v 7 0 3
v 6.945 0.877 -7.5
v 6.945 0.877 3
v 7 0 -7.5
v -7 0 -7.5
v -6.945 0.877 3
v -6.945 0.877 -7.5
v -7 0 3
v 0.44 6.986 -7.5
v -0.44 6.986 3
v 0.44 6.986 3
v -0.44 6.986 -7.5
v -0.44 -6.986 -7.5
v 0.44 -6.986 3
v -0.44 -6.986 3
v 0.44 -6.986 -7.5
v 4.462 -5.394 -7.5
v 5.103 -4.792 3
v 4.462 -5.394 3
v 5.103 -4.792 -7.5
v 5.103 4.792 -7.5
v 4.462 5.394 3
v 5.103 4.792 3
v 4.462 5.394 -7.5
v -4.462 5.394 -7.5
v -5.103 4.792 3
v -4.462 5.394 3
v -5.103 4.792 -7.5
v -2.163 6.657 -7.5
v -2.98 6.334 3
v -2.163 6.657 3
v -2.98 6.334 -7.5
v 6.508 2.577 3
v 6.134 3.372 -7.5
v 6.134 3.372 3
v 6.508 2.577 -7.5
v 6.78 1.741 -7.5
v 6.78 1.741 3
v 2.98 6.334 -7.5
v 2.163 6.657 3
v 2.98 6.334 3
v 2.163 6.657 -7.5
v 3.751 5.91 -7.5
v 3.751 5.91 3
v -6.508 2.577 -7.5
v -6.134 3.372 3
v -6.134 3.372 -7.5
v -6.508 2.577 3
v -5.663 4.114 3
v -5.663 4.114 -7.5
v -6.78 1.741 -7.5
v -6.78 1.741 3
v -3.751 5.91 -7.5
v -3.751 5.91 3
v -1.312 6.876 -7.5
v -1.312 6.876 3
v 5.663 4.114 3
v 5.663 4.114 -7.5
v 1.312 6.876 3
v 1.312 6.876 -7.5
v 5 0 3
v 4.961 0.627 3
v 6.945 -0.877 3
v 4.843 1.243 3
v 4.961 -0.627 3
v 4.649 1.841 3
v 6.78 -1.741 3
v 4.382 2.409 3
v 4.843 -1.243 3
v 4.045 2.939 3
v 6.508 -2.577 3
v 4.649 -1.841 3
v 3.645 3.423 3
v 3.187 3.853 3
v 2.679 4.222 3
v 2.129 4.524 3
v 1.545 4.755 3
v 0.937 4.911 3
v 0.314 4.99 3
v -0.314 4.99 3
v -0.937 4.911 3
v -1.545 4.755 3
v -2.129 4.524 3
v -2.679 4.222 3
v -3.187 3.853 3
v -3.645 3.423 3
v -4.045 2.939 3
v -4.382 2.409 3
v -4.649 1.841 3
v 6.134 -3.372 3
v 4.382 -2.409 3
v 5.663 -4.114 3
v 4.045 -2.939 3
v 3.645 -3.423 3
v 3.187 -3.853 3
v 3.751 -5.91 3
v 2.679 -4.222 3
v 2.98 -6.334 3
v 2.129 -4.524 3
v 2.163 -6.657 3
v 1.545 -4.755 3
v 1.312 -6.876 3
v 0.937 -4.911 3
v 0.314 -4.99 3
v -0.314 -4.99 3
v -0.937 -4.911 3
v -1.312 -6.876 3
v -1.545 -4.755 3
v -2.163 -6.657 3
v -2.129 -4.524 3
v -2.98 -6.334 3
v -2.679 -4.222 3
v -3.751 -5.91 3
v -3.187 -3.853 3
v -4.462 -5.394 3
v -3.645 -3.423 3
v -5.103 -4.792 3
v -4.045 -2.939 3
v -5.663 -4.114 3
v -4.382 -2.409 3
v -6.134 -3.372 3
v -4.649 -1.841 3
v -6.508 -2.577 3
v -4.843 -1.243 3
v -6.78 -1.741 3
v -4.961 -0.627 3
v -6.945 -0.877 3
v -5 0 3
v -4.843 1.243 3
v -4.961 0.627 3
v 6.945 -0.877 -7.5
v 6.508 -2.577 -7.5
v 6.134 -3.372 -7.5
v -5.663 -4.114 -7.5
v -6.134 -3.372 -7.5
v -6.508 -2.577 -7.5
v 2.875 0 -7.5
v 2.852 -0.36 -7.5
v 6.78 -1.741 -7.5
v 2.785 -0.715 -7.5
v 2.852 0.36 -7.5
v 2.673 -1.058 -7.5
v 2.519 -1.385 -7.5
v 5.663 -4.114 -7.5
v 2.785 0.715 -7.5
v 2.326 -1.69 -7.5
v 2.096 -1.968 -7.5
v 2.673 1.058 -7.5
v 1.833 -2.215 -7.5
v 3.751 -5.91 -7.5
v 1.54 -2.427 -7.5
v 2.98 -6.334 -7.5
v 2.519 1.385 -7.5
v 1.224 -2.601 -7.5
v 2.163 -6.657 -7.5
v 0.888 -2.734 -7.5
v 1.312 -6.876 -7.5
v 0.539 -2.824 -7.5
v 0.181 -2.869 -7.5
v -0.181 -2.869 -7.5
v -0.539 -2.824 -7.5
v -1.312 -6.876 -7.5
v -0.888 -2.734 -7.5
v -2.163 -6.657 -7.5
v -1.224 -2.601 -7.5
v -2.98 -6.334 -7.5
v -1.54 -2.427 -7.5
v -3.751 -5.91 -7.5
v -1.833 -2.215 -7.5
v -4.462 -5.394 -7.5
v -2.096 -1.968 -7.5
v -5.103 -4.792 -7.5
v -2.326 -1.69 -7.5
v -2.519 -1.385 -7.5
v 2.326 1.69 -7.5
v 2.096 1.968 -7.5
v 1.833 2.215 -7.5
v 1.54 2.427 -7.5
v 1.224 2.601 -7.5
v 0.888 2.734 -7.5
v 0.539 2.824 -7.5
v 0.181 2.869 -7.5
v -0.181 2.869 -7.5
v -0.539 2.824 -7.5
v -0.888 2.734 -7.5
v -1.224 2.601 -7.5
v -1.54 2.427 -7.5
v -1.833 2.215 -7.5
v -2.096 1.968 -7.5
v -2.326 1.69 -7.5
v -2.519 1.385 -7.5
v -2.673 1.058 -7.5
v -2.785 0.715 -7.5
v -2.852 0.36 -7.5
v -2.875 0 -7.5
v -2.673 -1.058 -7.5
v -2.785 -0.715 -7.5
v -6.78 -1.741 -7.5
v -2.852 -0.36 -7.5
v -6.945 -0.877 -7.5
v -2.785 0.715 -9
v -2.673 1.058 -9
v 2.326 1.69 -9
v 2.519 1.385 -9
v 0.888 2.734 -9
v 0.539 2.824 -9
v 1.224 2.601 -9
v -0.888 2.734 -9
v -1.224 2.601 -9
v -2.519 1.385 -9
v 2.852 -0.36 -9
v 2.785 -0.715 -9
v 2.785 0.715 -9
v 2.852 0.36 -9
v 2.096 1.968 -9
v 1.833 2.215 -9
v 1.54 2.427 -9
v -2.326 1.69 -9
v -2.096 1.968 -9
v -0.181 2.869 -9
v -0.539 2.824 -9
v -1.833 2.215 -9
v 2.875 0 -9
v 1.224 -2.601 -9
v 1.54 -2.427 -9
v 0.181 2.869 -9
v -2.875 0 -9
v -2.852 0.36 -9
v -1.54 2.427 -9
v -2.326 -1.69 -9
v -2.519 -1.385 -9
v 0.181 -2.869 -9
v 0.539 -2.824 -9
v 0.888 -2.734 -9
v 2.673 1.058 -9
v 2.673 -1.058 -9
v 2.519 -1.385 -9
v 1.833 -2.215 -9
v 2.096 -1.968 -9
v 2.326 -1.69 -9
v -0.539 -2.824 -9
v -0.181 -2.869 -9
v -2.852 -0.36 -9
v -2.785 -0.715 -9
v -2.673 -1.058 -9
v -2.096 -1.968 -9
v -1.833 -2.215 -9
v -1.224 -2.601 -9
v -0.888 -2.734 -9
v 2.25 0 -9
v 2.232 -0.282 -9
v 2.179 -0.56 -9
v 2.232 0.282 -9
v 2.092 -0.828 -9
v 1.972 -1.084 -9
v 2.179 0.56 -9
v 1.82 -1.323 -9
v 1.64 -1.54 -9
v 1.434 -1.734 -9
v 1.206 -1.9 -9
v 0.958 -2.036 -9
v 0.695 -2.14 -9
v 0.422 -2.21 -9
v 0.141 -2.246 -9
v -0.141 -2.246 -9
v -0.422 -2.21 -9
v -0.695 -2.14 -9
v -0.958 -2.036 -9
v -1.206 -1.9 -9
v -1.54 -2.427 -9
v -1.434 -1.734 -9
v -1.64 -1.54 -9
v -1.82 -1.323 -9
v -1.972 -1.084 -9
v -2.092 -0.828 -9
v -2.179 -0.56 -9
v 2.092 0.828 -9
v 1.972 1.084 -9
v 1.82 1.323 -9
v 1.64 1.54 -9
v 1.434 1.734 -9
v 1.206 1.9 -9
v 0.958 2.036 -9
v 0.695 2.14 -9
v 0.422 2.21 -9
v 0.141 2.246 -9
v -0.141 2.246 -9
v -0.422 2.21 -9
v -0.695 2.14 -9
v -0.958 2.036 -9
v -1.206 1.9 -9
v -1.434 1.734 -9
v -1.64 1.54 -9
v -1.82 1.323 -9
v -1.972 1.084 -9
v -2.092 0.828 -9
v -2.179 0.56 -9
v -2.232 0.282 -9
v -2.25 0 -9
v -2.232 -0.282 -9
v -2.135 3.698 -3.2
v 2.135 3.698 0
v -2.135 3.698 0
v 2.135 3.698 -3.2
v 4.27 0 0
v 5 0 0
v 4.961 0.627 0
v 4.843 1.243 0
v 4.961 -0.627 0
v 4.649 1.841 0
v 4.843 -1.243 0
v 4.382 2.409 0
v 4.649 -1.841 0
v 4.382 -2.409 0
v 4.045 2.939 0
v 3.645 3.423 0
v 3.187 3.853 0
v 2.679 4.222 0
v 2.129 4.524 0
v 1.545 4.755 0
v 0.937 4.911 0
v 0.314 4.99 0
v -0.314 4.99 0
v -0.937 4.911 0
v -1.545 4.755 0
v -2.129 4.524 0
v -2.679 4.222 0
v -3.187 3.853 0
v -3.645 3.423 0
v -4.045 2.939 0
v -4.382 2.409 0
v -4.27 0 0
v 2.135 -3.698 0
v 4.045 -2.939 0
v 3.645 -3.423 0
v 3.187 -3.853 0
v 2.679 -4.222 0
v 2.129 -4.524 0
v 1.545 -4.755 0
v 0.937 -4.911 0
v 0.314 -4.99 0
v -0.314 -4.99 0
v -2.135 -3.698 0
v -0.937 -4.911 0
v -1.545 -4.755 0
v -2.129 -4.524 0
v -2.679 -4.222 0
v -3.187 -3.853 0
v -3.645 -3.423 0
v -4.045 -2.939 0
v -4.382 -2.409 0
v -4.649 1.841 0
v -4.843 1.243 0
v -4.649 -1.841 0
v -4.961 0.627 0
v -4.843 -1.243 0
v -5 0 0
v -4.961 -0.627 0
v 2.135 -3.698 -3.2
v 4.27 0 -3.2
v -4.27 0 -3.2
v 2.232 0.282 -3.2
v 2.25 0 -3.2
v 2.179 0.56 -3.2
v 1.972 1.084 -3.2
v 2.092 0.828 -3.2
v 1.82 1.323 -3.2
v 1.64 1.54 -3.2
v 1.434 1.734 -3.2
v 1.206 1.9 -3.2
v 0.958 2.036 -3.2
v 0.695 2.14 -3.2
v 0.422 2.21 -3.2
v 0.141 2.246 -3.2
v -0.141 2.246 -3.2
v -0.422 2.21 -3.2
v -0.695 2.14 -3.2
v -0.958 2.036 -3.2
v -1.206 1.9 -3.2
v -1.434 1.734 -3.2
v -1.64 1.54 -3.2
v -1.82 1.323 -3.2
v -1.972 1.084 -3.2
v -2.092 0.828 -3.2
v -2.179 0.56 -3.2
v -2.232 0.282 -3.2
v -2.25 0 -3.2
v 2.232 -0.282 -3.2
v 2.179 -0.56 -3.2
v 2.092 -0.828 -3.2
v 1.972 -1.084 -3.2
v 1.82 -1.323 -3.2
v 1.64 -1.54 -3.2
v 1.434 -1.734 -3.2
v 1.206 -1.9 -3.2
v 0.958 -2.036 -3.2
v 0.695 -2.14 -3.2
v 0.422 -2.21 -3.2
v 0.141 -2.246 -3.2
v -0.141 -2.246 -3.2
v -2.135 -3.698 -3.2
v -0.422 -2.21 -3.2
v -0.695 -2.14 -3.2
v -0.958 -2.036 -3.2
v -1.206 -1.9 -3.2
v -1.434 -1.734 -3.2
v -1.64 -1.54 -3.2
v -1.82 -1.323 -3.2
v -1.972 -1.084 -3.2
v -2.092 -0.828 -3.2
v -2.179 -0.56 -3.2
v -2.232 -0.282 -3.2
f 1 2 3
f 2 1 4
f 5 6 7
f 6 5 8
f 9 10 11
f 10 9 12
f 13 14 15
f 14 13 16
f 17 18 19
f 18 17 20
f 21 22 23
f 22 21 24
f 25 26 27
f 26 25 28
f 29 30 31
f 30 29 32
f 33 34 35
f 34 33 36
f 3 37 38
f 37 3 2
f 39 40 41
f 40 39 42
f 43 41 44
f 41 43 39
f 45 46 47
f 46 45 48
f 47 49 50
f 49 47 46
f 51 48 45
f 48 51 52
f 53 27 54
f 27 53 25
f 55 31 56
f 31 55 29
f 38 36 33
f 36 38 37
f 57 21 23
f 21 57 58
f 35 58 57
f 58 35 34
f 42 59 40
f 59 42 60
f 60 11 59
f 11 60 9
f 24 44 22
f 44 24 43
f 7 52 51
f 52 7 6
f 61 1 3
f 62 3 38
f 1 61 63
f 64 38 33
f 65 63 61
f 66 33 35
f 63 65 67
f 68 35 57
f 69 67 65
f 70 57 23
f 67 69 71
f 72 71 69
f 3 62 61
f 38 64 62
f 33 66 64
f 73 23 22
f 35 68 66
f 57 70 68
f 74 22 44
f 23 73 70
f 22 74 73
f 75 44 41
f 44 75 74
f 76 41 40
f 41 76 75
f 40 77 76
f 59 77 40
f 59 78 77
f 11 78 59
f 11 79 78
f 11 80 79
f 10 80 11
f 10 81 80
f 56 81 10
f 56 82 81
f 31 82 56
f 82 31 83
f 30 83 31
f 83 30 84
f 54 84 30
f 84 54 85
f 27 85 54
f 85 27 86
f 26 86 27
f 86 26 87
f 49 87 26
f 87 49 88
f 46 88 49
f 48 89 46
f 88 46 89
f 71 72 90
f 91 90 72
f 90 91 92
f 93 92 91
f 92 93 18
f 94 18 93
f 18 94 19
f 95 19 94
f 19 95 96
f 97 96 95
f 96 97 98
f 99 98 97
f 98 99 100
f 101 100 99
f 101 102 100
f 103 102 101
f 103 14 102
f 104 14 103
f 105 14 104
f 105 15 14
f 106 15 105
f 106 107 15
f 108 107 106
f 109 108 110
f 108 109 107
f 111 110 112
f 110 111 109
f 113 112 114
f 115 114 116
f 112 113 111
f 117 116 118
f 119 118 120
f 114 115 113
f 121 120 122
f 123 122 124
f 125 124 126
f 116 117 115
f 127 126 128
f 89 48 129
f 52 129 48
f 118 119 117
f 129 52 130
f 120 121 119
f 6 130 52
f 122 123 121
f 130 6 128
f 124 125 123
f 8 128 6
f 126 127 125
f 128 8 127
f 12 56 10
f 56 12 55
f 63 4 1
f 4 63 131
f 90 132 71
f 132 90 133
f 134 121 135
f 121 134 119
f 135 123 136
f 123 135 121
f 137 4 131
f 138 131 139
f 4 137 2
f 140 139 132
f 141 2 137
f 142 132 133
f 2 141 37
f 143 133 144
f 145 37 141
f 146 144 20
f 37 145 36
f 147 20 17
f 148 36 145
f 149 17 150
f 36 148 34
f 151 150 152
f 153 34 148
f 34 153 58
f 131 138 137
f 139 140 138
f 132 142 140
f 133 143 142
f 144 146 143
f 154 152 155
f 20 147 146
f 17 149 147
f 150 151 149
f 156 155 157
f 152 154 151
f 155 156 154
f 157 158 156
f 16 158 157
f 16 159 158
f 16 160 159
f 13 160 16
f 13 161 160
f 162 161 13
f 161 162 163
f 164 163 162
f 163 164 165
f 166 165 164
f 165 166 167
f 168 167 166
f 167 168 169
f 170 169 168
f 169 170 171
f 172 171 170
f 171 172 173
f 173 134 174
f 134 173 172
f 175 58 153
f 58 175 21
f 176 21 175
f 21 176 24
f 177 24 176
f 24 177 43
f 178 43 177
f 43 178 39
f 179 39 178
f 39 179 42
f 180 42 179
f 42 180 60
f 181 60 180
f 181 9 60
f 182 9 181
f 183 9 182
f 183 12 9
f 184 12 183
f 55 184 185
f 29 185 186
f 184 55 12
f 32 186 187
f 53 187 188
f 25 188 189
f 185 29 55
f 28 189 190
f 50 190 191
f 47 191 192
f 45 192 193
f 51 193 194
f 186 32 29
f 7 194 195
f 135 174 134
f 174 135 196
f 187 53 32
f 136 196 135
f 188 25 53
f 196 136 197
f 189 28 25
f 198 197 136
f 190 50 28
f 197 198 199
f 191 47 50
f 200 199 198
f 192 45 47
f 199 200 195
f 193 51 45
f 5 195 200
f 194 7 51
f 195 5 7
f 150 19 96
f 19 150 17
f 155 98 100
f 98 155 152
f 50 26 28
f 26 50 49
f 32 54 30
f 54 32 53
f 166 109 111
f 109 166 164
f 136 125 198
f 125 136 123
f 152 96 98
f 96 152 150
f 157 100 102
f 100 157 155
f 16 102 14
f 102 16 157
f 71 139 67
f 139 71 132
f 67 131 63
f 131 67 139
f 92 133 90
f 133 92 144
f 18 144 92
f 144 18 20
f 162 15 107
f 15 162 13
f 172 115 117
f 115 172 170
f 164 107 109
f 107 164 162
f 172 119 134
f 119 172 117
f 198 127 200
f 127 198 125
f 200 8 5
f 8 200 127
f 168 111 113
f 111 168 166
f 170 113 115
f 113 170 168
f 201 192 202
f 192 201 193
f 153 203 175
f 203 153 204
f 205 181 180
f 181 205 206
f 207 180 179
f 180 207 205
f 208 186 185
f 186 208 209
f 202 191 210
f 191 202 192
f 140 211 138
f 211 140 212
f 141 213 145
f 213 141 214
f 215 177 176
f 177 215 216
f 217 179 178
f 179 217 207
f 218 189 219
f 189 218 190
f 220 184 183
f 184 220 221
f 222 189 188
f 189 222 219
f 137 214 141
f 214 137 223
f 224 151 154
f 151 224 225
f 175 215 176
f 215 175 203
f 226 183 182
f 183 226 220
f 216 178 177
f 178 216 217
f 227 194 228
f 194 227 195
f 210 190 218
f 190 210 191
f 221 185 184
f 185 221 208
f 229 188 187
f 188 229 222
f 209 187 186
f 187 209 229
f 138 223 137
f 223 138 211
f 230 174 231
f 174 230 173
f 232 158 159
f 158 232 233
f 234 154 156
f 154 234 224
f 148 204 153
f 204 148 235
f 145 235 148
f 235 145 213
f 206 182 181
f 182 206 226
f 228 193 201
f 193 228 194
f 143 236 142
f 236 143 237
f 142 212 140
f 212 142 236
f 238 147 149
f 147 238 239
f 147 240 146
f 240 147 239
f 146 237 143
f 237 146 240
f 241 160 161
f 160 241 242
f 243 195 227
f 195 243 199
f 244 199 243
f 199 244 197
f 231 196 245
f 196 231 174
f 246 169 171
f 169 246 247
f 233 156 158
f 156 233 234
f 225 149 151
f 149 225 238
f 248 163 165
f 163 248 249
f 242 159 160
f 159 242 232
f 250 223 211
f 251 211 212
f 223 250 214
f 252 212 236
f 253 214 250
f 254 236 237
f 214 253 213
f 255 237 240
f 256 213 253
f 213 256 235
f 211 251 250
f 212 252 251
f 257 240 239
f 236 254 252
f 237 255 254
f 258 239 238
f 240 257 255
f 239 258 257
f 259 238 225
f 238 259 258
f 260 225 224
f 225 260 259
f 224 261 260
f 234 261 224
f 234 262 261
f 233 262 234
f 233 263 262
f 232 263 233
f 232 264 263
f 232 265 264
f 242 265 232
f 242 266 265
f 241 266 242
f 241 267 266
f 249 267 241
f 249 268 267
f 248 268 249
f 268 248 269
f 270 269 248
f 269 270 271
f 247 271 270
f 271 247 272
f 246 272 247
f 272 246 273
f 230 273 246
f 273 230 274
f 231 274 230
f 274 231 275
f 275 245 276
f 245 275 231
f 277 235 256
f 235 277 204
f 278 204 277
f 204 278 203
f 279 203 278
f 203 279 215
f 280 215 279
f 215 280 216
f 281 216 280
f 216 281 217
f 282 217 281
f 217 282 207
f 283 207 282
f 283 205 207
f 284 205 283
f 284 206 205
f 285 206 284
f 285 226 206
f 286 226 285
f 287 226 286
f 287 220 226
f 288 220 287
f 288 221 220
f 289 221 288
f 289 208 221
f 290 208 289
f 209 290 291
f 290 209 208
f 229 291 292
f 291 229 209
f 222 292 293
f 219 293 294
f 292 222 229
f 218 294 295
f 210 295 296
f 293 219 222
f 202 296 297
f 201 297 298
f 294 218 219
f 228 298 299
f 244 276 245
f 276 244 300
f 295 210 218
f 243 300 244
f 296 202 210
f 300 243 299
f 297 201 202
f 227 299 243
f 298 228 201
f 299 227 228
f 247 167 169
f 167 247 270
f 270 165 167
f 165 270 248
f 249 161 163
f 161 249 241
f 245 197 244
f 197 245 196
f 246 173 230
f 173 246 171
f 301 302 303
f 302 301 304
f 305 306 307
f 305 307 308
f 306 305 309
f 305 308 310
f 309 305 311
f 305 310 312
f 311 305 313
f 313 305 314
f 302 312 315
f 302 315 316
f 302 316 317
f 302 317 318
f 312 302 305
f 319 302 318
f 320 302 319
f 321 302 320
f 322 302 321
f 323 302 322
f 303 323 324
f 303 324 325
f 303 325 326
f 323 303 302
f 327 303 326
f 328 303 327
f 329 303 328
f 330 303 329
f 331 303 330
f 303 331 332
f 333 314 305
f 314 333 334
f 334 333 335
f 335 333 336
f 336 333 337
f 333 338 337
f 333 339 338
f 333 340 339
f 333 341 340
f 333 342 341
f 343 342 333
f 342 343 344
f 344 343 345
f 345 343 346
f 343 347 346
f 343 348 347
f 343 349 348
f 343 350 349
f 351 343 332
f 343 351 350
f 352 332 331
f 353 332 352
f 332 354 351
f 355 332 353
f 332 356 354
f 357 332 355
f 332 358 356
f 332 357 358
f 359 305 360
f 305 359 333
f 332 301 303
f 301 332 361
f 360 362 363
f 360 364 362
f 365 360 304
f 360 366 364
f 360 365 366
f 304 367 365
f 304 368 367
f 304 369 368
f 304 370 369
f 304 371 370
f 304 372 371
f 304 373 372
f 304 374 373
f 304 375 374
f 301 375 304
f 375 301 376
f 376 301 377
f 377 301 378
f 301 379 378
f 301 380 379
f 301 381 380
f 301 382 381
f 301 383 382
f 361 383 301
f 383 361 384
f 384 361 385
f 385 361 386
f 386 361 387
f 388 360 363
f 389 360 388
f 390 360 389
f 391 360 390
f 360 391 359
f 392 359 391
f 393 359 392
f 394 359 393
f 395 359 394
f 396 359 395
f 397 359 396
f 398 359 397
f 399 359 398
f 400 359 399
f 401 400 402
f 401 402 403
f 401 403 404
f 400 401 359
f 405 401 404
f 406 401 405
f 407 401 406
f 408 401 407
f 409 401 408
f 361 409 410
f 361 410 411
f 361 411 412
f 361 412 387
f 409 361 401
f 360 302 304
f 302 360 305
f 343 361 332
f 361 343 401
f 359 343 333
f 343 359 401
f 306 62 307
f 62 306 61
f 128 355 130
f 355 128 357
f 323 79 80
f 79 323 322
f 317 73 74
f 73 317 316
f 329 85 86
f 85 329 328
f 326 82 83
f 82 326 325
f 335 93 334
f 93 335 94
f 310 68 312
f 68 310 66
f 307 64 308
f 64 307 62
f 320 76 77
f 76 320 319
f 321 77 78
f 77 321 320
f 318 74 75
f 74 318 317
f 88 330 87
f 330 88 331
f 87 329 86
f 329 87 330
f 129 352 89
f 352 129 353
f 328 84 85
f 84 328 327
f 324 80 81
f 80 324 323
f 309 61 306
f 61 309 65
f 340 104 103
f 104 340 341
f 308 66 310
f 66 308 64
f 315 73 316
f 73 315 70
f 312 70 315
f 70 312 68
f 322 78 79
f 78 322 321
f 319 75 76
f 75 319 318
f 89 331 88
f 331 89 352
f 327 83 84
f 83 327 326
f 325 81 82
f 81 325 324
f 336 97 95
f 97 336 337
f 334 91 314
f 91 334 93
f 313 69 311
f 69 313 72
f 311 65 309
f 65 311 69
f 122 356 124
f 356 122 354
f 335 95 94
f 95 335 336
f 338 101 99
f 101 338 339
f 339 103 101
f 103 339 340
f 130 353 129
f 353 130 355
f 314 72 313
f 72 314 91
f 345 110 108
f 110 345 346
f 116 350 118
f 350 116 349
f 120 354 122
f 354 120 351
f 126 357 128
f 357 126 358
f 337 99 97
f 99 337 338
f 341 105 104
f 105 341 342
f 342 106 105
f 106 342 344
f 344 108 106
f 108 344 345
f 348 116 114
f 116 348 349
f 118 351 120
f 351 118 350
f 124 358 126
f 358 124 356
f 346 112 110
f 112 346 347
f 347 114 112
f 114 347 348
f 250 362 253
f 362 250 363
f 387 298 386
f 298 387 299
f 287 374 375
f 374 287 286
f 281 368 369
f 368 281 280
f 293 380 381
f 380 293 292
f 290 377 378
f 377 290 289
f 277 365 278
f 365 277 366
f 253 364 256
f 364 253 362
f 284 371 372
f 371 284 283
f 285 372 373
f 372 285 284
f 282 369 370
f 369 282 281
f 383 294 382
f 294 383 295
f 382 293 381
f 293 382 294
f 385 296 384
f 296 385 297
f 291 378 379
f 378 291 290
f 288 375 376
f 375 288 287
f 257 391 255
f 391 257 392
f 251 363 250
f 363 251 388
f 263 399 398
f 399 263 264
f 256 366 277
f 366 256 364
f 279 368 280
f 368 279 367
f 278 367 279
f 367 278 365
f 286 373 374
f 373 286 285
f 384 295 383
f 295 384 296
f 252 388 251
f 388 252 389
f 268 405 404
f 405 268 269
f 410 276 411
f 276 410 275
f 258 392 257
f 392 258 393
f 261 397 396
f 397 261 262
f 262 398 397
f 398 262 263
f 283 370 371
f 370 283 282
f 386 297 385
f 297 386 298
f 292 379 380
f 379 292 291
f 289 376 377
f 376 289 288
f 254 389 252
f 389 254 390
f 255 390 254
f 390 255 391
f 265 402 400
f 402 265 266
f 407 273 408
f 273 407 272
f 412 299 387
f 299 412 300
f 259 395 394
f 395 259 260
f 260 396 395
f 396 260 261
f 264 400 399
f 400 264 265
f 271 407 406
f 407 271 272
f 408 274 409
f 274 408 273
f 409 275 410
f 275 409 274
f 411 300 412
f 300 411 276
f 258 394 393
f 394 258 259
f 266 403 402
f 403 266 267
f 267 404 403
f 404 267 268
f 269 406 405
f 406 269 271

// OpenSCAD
$fn = 50;

difference() {
	union() {
		translate(v = [0, 0, -7.5]) {
			cylinder(h = 10.5, r = 7.0);
		}
		#translate(v = [0, 0, -9.0]) {
			cylinder(h = 9, r = 2.875);
		}
	}
	union() {
		translate(v = [0, 0, 0]) {
			rotate(a = [0, 0, 0]) {
				difference() {
					union() {
						translate(v = [0, 0, -3.2]) {
							linear_extrude(height = 3.2) {
								polygon(points = [[4.2698, 0.0], [2.1349000000000005, 3.697755269078796], [-2.134899999999999, 3.6977552690787965], [-4.2698, 5.228996902999369e-16], [-2.134900000000002, -3.6977552690787956], [2.1348999999999974, -3.697755269078798]]);
							}
						}
					}
					union();
				}
			}
		}
		#cylinder(h = 3, r = 5.0);
		#translate(v = [0, 0, -100.0]) {
			cylinder(h = 200, r = 2.25);
		}
	}
}
